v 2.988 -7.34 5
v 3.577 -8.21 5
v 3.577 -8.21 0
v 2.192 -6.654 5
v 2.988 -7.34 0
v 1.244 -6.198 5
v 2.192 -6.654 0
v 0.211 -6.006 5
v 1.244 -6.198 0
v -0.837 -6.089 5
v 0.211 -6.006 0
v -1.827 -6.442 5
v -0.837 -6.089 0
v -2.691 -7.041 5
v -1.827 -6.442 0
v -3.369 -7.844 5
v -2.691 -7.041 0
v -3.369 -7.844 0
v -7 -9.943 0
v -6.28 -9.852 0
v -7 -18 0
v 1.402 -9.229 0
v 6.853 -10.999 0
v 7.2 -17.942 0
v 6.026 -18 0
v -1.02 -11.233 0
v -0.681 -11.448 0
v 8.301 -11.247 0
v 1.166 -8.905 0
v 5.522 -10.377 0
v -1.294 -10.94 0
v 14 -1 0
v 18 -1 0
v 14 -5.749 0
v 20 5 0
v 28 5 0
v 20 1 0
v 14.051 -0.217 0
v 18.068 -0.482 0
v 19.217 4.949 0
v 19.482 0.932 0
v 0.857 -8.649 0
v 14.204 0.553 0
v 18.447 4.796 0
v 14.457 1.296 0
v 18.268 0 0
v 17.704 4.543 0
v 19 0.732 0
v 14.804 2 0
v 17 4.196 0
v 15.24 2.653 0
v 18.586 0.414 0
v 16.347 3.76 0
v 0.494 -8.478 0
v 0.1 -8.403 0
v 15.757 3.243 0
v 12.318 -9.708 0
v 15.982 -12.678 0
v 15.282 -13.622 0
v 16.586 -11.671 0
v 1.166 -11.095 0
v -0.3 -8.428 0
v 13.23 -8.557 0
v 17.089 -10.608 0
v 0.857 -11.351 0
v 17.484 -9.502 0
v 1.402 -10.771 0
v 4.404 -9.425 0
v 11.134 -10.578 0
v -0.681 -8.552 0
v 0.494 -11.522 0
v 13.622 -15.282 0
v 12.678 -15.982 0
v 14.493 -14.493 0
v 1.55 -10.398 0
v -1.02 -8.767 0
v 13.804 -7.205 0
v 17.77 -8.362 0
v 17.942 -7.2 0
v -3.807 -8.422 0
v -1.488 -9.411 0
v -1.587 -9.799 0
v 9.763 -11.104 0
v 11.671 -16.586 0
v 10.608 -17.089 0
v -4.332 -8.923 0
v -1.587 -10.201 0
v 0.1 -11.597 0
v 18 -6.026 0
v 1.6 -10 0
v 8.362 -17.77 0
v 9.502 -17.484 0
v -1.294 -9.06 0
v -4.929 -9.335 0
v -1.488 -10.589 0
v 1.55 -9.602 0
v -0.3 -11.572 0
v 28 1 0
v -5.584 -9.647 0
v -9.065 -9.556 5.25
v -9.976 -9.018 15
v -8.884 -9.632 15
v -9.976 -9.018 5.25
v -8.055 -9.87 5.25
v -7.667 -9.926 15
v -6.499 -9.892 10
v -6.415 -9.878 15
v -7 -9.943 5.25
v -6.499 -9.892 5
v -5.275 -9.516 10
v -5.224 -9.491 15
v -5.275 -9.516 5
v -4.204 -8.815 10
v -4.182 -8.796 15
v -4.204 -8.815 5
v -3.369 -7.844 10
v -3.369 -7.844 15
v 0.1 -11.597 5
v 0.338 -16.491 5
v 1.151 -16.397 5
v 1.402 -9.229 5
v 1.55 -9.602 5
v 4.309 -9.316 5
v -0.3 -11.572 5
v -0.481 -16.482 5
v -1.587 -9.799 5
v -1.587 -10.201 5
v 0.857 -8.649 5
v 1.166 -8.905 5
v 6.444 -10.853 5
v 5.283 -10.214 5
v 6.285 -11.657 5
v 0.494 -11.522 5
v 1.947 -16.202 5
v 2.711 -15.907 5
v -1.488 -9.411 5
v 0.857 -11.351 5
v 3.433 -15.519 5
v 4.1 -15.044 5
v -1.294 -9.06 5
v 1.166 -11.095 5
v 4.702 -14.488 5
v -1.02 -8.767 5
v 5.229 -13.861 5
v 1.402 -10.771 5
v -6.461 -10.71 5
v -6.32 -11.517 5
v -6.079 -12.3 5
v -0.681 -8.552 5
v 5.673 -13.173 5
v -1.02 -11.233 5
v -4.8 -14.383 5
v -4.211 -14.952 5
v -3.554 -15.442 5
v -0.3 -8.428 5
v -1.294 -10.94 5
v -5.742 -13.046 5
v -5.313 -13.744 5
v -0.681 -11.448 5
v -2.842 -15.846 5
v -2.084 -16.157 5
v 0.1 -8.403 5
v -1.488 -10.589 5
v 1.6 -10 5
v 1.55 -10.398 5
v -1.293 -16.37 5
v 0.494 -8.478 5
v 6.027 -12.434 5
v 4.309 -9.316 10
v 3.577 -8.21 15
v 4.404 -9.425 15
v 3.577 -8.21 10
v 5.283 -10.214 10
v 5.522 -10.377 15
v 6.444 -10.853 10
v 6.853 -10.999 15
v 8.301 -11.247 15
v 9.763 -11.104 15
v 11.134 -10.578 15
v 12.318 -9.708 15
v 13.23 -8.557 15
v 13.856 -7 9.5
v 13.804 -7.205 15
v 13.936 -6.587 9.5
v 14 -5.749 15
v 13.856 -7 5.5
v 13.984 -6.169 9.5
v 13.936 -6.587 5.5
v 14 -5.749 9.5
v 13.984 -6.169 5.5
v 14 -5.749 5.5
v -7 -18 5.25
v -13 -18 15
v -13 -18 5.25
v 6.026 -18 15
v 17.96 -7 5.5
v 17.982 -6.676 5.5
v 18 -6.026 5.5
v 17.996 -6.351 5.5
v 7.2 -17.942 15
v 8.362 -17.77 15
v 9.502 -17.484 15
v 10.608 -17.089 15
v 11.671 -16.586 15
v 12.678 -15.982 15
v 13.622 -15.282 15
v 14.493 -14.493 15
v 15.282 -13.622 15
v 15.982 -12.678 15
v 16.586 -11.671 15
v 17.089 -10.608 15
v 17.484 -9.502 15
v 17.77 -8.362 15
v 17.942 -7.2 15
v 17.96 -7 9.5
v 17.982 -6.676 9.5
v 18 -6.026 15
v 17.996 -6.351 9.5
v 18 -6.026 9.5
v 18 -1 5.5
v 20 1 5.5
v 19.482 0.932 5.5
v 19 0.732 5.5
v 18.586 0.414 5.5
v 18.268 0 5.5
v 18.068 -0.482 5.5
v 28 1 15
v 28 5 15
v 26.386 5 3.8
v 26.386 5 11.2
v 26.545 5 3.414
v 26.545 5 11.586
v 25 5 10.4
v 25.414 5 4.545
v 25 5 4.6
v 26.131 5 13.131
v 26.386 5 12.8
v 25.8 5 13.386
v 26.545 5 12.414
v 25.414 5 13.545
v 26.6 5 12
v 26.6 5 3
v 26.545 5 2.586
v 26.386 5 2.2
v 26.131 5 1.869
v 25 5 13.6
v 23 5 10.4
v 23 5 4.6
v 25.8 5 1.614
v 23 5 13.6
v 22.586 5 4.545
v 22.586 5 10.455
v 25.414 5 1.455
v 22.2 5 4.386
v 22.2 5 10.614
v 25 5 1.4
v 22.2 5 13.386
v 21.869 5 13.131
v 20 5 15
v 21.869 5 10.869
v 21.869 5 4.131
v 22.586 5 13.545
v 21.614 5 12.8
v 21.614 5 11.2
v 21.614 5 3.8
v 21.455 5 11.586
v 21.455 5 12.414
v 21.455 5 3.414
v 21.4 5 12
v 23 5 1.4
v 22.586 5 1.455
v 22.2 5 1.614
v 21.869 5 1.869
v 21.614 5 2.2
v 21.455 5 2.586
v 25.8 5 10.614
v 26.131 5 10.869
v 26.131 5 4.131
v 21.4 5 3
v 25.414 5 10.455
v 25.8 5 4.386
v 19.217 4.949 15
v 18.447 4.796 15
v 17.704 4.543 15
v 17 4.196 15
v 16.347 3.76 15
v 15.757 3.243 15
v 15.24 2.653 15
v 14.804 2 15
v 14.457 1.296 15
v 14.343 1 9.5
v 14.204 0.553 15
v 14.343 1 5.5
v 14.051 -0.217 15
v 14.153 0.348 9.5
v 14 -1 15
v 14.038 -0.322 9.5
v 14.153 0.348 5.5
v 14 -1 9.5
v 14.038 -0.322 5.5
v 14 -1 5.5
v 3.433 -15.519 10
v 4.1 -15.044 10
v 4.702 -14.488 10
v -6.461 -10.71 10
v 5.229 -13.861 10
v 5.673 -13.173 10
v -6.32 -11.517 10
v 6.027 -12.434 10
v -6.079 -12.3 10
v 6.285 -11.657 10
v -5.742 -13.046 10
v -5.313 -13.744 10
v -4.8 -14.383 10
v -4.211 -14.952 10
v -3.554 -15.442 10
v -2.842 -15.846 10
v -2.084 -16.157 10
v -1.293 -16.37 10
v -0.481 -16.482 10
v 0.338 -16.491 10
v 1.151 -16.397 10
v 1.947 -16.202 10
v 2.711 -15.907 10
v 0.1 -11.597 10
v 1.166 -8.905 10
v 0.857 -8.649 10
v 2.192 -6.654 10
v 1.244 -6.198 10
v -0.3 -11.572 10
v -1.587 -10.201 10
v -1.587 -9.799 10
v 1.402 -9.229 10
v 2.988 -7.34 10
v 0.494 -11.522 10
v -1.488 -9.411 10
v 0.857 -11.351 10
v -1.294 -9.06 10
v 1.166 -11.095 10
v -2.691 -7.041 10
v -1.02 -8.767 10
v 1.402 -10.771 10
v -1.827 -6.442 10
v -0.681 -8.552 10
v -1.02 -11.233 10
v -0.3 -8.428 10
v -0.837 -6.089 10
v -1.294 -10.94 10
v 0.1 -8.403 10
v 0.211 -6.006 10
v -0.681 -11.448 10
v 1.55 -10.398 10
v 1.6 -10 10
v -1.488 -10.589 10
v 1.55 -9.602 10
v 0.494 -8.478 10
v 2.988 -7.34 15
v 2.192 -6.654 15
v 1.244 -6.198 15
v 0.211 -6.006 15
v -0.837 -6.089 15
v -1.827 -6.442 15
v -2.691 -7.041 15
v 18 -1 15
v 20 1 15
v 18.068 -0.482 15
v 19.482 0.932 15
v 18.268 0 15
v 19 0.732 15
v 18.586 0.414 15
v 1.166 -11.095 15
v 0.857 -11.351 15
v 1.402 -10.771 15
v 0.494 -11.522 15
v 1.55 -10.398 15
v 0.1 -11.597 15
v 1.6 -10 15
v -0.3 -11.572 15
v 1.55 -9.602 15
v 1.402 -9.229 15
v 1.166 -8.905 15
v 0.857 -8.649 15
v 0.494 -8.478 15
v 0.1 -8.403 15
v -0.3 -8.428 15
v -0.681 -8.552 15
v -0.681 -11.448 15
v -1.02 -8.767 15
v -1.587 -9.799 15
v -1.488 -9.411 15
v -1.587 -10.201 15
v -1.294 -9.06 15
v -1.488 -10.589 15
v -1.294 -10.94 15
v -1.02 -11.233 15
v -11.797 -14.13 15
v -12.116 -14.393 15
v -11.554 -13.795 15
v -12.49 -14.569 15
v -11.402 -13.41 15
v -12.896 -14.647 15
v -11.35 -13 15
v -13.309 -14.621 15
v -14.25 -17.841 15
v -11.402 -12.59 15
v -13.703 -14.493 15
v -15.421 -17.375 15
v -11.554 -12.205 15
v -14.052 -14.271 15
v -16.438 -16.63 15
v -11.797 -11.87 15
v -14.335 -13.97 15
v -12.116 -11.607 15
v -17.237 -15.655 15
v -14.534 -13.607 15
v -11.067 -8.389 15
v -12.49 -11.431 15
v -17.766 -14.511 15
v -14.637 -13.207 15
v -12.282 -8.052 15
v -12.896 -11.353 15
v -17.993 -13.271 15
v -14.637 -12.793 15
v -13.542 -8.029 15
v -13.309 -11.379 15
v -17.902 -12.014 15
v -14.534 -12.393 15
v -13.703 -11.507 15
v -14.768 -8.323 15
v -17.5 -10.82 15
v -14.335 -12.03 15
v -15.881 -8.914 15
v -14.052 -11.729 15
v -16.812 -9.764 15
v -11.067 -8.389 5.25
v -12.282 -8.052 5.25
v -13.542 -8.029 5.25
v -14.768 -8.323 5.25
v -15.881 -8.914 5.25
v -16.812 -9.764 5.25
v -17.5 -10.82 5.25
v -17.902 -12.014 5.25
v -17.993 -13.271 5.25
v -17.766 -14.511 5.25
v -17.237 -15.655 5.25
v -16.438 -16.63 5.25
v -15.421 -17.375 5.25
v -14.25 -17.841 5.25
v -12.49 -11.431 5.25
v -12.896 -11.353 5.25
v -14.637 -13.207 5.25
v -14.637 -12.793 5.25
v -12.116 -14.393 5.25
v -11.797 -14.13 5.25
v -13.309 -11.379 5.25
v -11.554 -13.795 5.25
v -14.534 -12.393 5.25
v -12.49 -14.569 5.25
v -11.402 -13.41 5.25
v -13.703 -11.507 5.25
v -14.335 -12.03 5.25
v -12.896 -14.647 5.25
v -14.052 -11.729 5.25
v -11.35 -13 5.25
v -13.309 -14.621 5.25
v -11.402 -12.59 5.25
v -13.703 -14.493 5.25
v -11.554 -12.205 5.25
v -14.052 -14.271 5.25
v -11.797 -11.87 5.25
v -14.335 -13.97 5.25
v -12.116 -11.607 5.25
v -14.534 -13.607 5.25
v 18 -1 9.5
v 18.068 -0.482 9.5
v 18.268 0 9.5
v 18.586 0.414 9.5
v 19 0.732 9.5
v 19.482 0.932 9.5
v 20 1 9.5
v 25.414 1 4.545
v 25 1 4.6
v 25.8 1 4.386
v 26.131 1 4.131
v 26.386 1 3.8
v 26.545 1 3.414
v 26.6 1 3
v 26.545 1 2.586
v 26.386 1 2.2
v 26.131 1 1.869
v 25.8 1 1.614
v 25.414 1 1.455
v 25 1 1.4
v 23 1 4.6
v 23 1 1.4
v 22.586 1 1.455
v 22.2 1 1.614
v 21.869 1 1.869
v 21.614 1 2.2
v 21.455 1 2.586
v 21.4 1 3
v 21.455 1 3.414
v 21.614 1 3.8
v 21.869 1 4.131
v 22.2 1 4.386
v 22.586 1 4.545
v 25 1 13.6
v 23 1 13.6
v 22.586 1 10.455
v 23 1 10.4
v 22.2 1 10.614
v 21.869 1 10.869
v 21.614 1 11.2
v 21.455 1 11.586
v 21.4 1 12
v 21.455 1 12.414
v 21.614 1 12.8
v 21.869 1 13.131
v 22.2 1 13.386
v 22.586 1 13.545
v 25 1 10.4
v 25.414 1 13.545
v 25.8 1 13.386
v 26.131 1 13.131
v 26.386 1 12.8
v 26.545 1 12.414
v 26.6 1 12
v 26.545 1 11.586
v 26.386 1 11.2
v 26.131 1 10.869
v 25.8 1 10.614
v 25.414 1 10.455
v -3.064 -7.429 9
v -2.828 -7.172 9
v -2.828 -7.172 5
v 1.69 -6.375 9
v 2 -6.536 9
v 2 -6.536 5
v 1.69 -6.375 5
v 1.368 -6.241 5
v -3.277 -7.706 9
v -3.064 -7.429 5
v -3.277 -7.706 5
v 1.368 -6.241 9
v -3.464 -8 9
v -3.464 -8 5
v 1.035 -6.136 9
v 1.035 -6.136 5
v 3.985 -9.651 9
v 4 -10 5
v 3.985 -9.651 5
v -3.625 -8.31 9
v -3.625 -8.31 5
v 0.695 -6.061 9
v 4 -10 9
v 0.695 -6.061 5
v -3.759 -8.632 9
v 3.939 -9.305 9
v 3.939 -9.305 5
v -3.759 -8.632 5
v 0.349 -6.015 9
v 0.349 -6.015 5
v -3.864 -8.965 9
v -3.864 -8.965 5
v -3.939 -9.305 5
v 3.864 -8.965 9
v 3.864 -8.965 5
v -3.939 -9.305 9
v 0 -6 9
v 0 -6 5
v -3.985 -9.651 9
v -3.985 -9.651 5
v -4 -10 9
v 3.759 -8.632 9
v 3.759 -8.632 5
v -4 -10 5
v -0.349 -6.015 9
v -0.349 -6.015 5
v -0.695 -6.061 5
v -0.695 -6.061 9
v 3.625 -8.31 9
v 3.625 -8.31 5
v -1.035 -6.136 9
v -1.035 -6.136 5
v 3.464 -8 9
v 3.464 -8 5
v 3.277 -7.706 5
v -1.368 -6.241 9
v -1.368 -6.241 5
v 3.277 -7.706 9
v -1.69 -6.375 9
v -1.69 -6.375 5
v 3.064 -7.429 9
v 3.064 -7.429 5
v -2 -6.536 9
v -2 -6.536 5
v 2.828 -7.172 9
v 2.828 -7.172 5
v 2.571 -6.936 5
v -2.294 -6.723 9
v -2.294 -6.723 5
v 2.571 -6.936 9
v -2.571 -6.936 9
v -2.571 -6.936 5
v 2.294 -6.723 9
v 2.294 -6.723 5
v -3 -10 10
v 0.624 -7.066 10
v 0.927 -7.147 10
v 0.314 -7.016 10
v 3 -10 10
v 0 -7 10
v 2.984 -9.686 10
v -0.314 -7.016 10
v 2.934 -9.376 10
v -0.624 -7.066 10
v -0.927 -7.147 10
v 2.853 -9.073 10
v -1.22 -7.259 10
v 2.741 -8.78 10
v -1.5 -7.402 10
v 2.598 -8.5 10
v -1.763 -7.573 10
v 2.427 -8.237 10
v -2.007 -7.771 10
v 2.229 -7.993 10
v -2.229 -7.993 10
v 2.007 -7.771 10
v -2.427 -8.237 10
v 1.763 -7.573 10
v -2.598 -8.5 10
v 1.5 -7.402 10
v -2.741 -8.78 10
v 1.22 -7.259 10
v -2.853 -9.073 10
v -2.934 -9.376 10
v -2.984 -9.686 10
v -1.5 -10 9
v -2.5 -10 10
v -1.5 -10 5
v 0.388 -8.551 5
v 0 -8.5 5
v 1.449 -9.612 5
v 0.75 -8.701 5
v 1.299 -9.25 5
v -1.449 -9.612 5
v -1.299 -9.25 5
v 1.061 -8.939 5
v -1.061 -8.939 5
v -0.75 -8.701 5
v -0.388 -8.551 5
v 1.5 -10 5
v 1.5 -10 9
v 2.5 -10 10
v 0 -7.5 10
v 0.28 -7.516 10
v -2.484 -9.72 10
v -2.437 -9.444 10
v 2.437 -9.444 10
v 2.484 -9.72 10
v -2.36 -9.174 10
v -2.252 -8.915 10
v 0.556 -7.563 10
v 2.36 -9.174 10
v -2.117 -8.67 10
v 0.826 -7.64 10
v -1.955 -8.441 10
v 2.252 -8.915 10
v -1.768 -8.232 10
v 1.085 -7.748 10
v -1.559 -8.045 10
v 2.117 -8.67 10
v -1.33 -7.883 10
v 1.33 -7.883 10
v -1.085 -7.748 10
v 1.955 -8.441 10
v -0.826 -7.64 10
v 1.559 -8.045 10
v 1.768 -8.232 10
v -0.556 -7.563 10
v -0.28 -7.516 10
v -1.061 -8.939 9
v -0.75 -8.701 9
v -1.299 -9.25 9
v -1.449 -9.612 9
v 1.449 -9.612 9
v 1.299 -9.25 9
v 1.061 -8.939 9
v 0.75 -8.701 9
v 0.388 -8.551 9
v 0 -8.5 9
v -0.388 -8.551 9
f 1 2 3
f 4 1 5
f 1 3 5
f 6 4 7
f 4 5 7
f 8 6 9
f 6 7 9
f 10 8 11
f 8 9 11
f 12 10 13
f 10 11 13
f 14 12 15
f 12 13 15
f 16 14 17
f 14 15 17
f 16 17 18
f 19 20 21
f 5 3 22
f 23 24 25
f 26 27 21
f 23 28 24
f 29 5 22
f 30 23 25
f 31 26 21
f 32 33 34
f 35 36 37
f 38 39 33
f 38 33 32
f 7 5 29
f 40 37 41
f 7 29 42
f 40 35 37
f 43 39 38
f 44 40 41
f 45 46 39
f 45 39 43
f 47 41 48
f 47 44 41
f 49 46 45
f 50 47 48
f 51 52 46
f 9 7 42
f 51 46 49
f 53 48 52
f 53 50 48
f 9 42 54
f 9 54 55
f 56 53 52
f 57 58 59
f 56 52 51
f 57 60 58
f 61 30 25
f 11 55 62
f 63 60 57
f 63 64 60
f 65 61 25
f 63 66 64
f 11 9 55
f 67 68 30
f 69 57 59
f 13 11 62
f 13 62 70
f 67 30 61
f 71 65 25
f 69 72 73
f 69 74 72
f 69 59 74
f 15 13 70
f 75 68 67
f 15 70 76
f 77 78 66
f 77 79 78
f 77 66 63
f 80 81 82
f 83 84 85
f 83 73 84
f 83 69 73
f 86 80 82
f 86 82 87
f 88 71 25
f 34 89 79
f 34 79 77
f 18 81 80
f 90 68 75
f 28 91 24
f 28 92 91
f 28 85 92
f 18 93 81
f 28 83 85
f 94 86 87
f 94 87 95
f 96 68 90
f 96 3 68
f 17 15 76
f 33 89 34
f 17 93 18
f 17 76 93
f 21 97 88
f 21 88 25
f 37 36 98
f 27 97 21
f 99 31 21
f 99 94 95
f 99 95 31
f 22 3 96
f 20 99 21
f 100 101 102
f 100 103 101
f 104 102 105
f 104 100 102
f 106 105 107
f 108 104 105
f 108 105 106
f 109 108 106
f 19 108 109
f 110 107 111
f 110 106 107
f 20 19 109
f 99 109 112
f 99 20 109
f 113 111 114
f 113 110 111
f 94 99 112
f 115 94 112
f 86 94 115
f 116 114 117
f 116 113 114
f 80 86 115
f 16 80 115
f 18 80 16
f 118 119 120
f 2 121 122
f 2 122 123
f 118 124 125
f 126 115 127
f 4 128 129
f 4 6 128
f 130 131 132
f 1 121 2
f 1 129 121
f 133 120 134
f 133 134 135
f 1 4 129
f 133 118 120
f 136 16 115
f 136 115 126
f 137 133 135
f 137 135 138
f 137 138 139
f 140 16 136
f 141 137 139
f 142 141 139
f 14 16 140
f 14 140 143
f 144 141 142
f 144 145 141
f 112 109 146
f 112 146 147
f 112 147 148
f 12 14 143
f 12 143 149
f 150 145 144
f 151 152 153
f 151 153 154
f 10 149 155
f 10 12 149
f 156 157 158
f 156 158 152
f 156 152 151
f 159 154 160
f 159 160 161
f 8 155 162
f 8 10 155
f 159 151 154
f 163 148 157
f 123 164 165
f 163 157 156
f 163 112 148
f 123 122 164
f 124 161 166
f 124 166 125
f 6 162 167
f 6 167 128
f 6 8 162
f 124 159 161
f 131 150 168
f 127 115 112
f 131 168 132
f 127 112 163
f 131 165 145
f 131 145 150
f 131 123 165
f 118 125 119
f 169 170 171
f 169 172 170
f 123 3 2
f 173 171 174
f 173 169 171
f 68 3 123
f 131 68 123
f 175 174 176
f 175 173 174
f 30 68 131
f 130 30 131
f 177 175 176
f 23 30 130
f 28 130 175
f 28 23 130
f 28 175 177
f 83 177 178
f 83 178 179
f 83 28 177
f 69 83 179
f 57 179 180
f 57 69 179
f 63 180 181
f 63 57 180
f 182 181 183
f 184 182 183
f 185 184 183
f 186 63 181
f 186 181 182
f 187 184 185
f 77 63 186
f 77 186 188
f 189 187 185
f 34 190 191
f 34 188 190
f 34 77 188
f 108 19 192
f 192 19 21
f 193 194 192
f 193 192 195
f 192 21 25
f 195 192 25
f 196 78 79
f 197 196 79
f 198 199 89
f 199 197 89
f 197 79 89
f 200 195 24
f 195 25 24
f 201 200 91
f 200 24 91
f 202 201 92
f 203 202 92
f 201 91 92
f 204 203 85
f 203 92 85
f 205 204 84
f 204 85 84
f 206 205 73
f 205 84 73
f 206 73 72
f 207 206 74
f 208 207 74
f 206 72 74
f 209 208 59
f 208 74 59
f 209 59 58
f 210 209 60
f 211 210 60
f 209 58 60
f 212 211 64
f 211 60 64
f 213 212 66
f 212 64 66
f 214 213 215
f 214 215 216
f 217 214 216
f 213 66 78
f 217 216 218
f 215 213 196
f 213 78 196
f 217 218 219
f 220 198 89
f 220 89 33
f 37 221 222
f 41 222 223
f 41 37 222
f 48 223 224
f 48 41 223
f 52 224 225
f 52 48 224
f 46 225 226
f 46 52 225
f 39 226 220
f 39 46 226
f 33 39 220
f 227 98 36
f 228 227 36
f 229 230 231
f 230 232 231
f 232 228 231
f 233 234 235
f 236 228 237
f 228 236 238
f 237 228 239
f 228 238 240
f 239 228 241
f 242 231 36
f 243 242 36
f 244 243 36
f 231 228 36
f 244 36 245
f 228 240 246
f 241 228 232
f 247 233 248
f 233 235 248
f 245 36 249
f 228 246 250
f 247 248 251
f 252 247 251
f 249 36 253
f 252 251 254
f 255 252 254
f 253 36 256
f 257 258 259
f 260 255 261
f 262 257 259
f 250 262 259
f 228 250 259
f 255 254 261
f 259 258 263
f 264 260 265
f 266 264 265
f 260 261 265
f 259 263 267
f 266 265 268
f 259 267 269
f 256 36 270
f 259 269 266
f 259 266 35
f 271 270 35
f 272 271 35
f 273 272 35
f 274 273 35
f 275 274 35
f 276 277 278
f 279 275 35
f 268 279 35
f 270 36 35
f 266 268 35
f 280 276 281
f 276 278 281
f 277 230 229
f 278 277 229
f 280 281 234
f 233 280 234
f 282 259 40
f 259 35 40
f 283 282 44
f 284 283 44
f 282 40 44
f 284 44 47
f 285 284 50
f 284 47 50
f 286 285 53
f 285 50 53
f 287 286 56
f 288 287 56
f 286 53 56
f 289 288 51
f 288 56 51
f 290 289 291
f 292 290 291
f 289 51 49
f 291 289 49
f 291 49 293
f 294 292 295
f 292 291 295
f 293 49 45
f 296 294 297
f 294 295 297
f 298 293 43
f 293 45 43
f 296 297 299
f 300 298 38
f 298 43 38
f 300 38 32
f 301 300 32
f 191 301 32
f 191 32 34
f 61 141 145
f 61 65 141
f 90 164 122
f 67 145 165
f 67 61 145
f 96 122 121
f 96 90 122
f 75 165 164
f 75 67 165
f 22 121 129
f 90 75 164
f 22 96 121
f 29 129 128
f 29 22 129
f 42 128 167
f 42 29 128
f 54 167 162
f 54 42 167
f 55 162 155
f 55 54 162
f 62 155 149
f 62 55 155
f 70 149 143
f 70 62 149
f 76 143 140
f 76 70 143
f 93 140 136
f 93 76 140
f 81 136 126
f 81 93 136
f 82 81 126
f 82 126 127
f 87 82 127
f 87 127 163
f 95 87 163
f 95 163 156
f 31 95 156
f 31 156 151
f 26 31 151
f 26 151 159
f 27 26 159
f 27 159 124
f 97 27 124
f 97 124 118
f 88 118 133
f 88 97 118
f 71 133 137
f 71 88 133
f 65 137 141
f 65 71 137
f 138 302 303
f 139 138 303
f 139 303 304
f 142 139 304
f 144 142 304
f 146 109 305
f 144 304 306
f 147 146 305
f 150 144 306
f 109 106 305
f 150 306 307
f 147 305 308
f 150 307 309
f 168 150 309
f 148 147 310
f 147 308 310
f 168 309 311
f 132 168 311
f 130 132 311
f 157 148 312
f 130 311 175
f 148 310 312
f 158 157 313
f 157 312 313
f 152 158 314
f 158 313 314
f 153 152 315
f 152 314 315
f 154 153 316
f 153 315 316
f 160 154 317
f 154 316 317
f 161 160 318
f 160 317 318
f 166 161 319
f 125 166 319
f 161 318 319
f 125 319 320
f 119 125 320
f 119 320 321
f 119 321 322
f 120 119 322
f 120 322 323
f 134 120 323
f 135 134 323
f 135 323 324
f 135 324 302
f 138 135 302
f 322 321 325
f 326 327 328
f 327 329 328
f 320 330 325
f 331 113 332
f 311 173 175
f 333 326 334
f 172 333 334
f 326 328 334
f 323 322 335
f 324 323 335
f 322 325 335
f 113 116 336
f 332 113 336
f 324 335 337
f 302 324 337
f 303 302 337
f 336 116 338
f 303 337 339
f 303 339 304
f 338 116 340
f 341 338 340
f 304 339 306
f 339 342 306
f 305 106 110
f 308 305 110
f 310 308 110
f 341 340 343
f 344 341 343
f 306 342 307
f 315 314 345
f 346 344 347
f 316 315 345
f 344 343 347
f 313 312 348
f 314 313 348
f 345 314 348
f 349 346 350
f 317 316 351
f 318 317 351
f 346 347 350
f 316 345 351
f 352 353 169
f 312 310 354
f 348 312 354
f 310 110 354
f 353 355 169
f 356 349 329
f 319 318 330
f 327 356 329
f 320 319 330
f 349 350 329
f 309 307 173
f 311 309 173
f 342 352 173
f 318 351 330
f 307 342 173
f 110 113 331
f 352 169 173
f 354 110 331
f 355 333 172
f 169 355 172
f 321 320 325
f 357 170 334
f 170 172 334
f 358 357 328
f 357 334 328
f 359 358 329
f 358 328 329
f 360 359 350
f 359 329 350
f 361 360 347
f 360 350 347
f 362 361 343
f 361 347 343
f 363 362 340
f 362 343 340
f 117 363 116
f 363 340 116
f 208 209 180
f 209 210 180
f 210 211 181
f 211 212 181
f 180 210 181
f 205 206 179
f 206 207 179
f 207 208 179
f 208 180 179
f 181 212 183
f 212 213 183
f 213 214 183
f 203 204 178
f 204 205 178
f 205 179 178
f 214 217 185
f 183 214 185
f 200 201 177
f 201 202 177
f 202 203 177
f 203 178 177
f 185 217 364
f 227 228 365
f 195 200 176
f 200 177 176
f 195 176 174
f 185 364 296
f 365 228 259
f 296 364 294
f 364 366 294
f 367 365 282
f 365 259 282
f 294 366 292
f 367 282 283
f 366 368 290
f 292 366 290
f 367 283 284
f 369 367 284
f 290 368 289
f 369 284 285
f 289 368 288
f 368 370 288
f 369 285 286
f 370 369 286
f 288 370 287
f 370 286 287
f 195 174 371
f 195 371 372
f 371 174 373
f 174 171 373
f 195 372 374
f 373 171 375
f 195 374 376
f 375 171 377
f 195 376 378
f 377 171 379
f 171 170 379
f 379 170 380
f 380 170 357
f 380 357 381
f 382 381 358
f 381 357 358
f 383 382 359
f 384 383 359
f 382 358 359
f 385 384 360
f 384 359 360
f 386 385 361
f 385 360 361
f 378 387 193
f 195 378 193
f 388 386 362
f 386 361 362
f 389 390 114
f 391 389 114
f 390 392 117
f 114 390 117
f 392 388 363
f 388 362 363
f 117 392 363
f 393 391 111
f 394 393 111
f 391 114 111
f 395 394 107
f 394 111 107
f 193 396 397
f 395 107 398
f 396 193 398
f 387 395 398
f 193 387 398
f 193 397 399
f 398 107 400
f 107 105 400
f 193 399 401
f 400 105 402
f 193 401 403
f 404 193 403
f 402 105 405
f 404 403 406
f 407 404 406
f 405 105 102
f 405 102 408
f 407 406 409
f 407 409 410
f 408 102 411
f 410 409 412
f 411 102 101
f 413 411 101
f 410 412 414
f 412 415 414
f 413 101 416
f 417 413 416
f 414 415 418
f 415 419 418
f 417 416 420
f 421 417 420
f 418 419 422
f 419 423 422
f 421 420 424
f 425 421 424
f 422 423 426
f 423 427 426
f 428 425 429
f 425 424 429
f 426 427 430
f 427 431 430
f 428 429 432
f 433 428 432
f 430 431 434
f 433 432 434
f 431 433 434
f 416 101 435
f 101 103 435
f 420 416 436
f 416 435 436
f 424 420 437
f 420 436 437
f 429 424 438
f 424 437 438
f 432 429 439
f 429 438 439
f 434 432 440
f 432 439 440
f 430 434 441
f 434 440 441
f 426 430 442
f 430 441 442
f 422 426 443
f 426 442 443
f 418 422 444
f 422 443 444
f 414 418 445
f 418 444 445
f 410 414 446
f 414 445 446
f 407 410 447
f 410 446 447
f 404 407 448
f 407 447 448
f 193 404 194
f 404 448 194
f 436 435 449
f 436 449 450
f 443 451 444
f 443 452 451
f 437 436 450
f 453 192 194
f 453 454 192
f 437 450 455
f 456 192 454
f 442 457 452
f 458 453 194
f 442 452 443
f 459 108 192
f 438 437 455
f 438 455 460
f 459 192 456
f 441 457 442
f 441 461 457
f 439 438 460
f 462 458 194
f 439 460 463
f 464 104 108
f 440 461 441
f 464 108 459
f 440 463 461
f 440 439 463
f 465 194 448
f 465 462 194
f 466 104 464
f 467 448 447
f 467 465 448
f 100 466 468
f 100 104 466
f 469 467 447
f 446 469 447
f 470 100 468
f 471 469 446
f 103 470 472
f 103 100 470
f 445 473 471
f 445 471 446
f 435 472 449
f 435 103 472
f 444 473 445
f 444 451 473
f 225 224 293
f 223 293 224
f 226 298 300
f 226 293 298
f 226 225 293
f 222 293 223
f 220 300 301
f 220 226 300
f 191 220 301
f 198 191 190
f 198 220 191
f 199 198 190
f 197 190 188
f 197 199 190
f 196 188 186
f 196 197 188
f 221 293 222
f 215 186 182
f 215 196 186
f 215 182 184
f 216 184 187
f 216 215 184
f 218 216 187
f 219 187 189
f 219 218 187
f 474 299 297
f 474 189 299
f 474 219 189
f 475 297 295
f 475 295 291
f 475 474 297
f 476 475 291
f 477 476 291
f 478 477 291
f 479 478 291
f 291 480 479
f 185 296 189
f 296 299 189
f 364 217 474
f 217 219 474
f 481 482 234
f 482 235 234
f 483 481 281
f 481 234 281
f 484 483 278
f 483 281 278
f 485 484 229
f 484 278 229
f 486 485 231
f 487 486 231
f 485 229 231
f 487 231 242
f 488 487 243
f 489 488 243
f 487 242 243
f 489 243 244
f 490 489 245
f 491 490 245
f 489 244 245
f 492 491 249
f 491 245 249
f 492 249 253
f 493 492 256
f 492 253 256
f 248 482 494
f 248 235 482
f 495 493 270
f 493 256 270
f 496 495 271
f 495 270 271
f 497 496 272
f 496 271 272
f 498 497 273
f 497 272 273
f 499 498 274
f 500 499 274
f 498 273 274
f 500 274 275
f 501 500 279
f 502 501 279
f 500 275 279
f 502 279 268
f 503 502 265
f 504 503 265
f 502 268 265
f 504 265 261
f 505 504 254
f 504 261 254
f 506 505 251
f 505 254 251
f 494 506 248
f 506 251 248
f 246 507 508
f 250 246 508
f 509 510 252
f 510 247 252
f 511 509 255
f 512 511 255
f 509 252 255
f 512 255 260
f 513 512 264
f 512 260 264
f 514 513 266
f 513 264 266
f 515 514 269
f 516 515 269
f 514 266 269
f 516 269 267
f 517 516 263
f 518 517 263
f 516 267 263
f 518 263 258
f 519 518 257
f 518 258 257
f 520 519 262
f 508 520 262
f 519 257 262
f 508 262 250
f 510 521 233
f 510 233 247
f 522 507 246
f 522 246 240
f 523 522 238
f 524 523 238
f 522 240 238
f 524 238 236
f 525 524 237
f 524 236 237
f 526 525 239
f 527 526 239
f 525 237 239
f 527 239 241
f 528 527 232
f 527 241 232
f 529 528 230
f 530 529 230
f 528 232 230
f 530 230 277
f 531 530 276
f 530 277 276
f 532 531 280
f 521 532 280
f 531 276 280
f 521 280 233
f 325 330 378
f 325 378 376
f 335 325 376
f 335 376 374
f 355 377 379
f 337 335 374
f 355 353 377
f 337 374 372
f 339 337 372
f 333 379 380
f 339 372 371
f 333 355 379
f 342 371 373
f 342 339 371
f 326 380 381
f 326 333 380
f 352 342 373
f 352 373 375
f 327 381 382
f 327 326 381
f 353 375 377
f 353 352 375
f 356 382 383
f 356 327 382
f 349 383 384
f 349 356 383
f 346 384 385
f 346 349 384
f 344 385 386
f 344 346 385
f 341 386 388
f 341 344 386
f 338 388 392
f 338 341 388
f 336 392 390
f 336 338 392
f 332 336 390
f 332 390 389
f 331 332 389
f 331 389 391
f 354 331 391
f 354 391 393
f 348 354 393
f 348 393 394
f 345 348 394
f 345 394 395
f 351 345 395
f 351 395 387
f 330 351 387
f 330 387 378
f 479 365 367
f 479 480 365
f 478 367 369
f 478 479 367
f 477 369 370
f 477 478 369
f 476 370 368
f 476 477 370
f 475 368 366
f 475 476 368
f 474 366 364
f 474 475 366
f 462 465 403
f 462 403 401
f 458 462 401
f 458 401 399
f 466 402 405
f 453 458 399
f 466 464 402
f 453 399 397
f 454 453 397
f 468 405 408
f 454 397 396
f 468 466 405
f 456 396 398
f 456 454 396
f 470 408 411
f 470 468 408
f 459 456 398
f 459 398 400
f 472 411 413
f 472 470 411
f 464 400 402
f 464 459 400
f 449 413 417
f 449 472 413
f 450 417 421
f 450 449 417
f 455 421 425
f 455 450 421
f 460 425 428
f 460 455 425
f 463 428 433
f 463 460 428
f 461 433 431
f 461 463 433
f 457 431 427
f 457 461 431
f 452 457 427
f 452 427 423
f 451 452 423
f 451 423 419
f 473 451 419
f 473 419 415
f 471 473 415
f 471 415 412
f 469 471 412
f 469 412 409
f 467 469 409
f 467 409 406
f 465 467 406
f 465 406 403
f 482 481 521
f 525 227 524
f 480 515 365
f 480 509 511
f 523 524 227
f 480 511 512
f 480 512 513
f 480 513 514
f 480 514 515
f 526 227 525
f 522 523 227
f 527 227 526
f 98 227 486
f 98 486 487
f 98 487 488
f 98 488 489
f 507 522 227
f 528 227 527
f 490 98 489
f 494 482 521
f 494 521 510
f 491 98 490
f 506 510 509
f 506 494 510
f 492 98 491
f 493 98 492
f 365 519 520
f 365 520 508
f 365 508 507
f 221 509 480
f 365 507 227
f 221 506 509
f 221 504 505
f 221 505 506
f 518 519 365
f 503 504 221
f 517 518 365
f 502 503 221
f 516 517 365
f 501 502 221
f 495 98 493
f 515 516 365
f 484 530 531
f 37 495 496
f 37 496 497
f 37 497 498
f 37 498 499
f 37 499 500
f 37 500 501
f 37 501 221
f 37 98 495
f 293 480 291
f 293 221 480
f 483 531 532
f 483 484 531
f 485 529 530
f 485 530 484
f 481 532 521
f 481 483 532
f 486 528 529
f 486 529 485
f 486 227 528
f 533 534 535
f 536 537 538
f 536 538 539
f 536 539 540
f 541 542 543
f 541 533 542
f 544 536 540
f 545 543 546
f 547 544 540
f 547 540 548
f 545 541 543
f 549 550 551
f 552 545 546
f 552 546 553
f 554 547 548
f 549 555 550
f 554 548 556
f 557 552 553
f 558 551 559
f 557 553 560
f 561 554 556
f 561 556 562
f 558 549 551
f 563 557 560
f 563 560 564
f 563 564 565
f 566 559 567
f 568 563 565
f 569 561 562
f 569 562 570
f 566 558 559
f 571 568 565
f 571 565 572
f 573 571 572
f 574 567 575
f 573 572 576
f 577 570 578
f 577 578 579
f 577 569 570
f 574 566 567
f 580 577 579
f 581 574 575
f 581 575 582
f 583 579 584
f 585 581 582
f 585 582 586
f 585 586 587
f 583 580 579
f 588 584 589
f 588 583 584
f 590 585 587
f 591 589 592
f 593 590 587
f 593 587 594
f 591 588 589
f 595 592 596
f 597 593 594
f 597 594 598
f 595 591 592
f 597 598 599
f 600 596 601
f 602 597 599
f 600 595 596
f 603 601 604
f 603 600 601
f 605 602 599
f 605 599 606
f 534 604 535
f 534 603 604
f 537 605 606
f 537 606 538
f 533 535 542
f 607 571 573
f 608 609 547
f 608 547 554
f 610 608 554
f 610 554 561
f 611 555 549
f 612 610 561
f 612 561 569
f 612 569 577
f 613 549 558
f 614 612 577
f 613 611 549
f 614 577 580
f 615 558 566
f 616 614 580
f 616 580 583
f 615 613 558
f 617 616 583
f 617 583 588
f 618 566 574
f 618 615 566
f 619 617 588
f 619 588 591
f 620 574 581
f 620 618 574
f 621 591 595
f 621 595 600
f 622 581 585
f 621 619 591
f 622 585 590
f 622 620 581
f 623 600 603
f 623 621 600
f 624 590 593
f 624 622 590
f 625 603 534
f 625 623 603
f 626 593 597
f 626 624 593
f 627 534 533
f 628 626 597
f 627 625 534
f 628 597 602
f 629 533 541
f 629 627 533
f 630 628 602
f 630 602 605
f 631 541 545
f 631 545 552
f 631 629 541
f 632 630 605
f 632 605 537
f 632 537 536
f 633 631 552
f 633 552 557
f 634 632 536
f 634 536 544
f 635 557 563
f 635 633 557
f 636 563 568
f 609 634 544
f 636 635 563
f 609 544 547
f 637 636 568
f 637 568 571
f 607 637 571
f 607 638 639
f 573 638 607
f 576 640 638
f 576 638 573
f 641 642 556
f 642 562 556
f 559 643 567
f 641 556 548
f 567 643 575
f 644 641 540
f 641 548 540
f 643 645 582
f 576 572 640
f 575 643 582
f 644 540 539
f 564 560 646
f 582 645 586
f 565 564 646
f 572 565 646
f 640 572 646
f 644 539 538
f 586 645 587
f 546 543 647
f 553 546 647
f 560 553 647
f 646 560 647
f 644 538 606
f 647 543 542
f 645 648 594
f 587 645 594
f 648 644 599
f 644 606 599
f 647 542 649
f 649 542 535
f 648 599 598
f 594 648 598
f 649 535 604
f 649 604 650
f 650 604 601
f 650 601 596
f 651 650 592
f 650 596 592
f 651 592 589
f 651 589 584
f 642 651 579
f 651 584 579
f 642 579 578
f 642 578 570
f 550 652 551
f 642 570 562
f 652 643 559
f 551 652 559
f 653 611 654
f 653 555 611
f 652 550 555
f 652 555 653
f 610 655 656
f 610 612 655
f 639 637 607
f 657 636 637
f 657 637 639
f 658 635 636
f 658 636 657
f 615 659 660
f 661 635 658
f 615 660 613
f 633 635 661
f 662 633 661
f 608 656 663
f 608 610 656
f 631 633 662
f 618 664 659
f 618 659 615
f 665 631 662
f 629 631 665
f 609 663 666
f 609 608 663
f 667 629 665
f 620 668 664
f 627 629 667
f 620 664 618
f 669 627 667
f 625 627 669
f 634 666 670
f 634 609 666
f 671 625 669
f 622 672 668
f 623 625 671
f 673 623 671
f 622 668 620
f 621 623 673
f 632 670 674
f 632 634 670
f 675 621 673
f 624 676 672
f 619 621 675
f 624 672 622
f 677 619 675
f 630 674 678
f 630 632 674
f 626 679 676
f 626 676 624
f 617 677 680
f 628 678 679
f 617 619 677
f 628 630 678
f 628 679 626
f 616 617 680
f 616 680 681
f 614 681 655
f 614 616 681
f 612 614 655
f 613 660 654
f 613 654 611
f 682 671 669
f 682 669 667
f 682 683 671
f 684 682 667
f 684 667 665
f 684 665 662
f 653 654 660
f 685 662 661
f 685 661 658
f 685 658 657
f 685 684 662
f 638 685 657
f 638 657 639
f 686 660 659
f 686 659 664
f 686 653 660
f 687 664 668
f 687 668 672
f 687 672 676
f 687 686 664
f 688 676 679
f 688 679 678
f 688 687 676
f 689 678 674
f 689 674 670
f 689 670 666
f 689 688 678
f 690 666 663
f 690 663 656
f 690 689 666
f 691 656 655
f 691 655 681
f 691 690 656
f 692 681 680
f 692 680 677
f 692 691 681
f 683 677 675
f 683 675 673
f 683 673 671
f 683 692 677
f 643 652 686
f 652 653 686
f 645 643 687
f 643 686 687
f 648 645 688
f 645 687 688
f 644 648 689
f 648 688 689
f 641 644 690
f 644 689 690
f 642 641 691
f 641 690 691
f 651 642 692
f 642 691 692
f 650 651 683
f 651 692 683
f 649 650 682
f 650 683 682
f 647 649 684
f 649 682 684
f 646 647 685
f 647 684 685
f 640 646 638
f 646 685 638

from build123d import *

# Parameters (mm, degrees)
CYLINDER_R           = 6.5
CYLINDER_DEPTH       = 5
PAD001_DEPTH         = 5.25
SKETCH_R             = 1.6
SKETCH_R_2           = 1.65
PAD_DEPTH            = 15
POCKET_DEPTH         = 5
SKETCH003_W          = 8
SKETCH003_H          = 4
POCKET001_DEPTH      = 36.001
POCKET001_DEPTH_BACK = -10.001
CYLINDER001_R        = 1.5
CYLINDER001_DEPTH    = 5
CYLINDER002_R        = 4
CYLINDER002_DEPTH    = 5
CHAMFER_SIZE         = 1
SKETCH004_W          = 10
SKETCH004_H          = 5
POCKET002_DEPTH      = 5


with BuildPart() as rodamiento:
    # Cylinder → Cylinder (new body)
    with BuildSketch(Plane(origin=(0, -10, 5), x_dir=(1, 0, 0), z_dir=(0, 0, 1))):
        Circle(CYLINDER_R)
    extrude(amount=CYLINDER_DEPTH)


with BuildPart() as bisagra:
    # Sketch001 → Pad001 (new body)
    with BuildSketch(Plane.XY):
        with BuildLine():
            ThreePointArc((-13, -7), (-19, -13.000015), (-12.99997, -19))
            Line((-7, -19), (-12.99997, -19))
            Line((-7, -7), (-7, -19))
            Line((-13, -7), (-7, -7))
        make_face()
    extrude(amount=PAD001_DEPTH)


with BuildPart() as pocket001:
    # Sketch → Pad (new body)
    with BuildSketch(Plane.XY):
        with BuildLine():
            ThreePointArc((-9.975703, -9.018339), (-17.738581, -11.404429), (-13, -18))
            Line((-13, -18), (6.026073, -18))
            ThreePointArc((6.026073, -18), (14.492918, -14.492918), (18, -6.026073))
            Line((18, -6.026073), (18, -1))
            ThreePointArc((20, 1), (18.585786, 0.414214), (18, -1))
            Line((20, 1), (28, 1))
            Line((28, 1), (28, 5))
            Line((28, 5), (19.999992, 5))
            ThreePointArc((19.999992, 5), (15.757346, 3.242627), (14, -1.00003))
            Line((14, -1.00003), (14, -5.748808))
            ThreePointArc((3.577338, -8.210404), (9.762642, -11.10351), (14, -5.748808))
            ThreePointArc((3.577338, -8.210404), (0.210821, -6.00556), (-3.369084, -7.843782))
            ThreePointArc((-9.975703, -9.018339), (-6.415209, -9.877665), (-3.369084, -7.843782))
        make_face()
        with Locations((0, -10)):
            Circle(SKETCH_R, mode=Mode.SUBTRACT)
        with Locations((-13, -13)):
            Circle(SKETCH_R_2, mode=Mode.SUBTRACT)
    extrude(amount=PAD_DEPTH)

    # Cut: cut bisagra
    add(bisagra.part, mode=Mode.SUBTRACT)

    # Cut001: cut rodamiento
    add(rodamiento.part, mode=Mode.SUBTRACT)

    # Sketch002 → Pocket (cut)
    with BuildSketch(Plane(origin=(0, 5, 0), x_dir=(-1, 0, 0), z_dir=(0, 1, 0))):
        with BuildLine():
            ThreePointArc((-25, 13.6), (-26.6, 12), (-25, 10.4))
            Line((-25, 10.4), (-23, 10.4))
            ThreePointArc((-23, 10.4), (-21.4, 12), (-23, 13.6))
            Line((-25, 13.6), (-23, 13.6))
        make_face()
        with BuildLine():
            ThreePointArc((-25, 4.6), (-26.6, 3), (-25, 1.4))
            Line((-25, 1.4), (-23, 1.4))
            ThreePointArc((-23, 1.4), (-21.4, 3), (-23, 4.6))
            Line((-25, 4.6), (-23, 4.6))
        make_face()
    extrude(amount=-POCKET_DEPTH, mode=Mode.SUBTRACT)

    # Sketch003 → Pocket001 (cut, two sides)
    with BuildSketch(Plane.YZ.offset(18)) as pocket001_sk:
        with Locations((-3, 7.5)):
            Rectangle(SKETCH003_W, SKETCH003_H)
    extrude(amount=-POCKET001_DEPTH, mode=Mode.SUBTRACT)
    extrude(pocket001_sk.sketch, amount=-POCKET001_DEPTH_BACK, mode=Mode.SUBTRACT)


with BuildPart() as cilindro:
    # Cylinder001 → Cylinder001 (new body)
    with BuildSketch(Plane(origin=(0, -10, 5), x_dir=(1, 0, 0), z_dir=(0, 0, 1))):
        Circle(CYLINDER001_R)
    extrude(amount=CYLINDER001_DEPTH)


with BuildPart() as soporte_rodamiento:
    # Cylinder002 → Cylinder002 (new body)
    with BuildSketch(Plane(origin=(0, -10, 5), x_dir=(1, 0, 0), z_dir=(0, 0, 1))):
        Circle(CYLINDER002_R)
    extrude(amount=CYLINDER002_DEPTH)

    # Cut002: cut Cilindro
    add(cilindro.part, mode=Mode.SUBTRACT)

    # Chamfer
    chamfer_edges = [soporte_rodamiento.edges().sort_by_distance(p)[0] for p in [
        (-1.5, -10, 10),
        (-4, -10, 10),
    ]]
    chamfer(chamfer_edges, length=CHAMFER_SIZE)

    # Sketch004 → Pocket002 (cut)
    with BuildSketch(Plane(origin=(0, 0, 5), x_dir=(1, 0, 0), z_dir=(0, 0, -1))):
        with Locations((0, 12.5)):
            Rectangle(SKETCH004_W, SKETCH004_H)
    extrude(amount=-POCKET002_DEPTH, mode=Mode.SUBTRACT)


solid = Compound([pocket001.part, soporte_rodamiento.part])
